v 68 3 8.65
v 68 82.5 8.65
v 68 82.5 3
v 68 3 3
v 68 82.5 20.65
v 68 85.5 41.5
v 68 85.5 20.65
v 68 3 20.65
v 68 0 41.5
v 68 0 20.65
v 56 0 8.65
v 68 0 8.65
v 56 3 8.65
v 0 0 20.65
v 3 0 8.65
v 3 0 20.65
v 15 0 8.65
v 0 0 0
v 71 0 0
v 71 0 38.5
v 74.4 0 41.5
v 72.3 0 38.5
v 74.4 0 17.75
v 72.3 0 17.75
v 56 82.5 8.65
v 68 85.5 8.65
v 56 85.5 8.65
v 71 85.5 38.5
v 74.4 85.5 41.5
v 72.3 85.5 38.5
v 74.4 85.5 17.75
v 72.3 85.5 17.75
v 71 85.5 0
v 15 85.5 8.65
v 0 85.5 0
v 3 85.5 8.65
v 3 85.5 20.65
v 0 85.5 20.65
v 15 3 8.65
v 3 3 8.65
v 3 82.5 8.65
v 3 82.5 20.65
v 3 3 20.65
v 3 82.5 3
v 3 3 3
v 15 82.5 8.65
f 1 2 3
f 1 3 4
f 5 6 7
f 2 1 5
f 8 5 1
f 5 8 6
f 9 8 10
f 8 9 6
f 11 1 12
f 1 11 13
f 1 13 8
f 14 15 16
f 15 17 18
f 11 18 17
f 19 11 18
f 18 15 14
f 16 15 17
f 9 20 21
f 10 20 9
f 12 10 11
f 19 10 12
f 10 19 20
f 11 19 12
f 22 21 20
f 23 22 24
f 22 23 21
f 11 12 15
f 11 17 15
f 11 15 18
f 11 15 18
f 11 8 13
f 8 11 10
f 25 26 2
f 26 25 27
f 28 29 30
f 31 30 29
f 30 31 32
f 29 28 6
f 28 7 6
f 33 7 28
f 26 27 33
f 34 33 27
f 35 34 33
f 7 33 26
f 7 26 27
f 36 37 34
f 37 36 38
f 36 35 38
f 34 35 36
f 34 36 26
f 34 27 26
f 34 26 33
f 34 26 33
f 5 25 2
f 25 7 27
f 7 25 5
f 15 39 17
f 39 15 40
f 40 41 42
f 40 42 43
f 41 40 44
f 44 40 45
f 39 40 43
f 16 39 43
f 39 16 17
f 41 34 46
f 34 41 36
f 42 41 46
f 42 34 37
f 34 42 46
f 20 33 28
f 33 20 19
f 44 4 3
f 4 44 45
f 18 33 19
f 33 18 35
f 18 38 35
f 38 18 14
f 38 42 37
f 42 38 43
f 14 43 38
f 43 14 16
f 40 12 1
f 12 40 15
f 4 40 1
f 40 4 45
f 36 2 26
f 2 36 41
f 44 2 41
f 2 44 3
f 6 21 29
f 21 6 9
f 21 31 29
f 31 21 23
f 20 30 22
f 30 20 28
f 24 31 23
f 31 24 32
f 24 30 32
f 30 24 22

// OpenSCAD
wall_t=3;
inner_wall_t=2.1;
wall_t2=wall_t*2;
auber_x=65;
auber_y=79.5;
auber_z=35.5;
auber_ridge=5.65;
gaggia_t=1.3;
gusset=12;

cube([wall_t2+auber_x,wall_t2+auber_y,wall_t]);
cube([wall_t,wall_t2+auber_y,wall_t+auber_ridge+gusset]);
cube([wall_t2+auber_x,wall_t,wall_t+auber_ridge]);
translate([0,wall_t+auber_y,0]) cube([wall_t2+auber_x,wall_t,wall_t+auber_ridge]);

translate([auber_x+wall_t,0,0]) cube([wall_t,wall_t2+auber_y,wall_t2+auber_z]);
translate([auber_x+wall_t,0,wall_t+auber_z]) cube([wall_t+inner_wall_t+gaggia_t,wall_t2+auber_y,wall_t]);
translate([auber_x+wall_t2+gaggia_t,0,auber_z/2]) cube([inner_wall_t,wall_t2+auber_y,wall_t2+auber_z/2]);

//Gussets
translate([wall_t+auber_x-gusset,0,wall_t+auber_ridge]) {
    difference(){
        cube([gusset,wall_t,gusset]);
        rotate([0,-45,0]) cube([gusset*2,wall_t,gusset*2]);
    }
}

translate([wall_t+auber_x-gusset,wall_t+auber_y,wall_t+auber_ridge]) {
    difference(){
        cube([gusset,wall_t,gusset]);
        rotate([0,-45,0]) cube([gusset*2,wall_t,gusset*2]);
    }
}

translate([wall_t+gusset,0,wall_t+auber_ridge]) {
    difference(){
        rotate([0,-90,0]) cube([gusset,wall_t,gusset]);
        rotate([0,-45,0]) cube([gusset*2,wall_t,gusset*2]);
    }
}
translate([wall_t+gusset,wall_t+auber_y,wall_t+auber_ridge]) {
    difference(){
        rotate([0,-90,0]) cube([gusset,wall_t,gusset]);
        rotate([0,-45,0]) cube([gusset*2,wall_t,gusset*2]);
    }
}
